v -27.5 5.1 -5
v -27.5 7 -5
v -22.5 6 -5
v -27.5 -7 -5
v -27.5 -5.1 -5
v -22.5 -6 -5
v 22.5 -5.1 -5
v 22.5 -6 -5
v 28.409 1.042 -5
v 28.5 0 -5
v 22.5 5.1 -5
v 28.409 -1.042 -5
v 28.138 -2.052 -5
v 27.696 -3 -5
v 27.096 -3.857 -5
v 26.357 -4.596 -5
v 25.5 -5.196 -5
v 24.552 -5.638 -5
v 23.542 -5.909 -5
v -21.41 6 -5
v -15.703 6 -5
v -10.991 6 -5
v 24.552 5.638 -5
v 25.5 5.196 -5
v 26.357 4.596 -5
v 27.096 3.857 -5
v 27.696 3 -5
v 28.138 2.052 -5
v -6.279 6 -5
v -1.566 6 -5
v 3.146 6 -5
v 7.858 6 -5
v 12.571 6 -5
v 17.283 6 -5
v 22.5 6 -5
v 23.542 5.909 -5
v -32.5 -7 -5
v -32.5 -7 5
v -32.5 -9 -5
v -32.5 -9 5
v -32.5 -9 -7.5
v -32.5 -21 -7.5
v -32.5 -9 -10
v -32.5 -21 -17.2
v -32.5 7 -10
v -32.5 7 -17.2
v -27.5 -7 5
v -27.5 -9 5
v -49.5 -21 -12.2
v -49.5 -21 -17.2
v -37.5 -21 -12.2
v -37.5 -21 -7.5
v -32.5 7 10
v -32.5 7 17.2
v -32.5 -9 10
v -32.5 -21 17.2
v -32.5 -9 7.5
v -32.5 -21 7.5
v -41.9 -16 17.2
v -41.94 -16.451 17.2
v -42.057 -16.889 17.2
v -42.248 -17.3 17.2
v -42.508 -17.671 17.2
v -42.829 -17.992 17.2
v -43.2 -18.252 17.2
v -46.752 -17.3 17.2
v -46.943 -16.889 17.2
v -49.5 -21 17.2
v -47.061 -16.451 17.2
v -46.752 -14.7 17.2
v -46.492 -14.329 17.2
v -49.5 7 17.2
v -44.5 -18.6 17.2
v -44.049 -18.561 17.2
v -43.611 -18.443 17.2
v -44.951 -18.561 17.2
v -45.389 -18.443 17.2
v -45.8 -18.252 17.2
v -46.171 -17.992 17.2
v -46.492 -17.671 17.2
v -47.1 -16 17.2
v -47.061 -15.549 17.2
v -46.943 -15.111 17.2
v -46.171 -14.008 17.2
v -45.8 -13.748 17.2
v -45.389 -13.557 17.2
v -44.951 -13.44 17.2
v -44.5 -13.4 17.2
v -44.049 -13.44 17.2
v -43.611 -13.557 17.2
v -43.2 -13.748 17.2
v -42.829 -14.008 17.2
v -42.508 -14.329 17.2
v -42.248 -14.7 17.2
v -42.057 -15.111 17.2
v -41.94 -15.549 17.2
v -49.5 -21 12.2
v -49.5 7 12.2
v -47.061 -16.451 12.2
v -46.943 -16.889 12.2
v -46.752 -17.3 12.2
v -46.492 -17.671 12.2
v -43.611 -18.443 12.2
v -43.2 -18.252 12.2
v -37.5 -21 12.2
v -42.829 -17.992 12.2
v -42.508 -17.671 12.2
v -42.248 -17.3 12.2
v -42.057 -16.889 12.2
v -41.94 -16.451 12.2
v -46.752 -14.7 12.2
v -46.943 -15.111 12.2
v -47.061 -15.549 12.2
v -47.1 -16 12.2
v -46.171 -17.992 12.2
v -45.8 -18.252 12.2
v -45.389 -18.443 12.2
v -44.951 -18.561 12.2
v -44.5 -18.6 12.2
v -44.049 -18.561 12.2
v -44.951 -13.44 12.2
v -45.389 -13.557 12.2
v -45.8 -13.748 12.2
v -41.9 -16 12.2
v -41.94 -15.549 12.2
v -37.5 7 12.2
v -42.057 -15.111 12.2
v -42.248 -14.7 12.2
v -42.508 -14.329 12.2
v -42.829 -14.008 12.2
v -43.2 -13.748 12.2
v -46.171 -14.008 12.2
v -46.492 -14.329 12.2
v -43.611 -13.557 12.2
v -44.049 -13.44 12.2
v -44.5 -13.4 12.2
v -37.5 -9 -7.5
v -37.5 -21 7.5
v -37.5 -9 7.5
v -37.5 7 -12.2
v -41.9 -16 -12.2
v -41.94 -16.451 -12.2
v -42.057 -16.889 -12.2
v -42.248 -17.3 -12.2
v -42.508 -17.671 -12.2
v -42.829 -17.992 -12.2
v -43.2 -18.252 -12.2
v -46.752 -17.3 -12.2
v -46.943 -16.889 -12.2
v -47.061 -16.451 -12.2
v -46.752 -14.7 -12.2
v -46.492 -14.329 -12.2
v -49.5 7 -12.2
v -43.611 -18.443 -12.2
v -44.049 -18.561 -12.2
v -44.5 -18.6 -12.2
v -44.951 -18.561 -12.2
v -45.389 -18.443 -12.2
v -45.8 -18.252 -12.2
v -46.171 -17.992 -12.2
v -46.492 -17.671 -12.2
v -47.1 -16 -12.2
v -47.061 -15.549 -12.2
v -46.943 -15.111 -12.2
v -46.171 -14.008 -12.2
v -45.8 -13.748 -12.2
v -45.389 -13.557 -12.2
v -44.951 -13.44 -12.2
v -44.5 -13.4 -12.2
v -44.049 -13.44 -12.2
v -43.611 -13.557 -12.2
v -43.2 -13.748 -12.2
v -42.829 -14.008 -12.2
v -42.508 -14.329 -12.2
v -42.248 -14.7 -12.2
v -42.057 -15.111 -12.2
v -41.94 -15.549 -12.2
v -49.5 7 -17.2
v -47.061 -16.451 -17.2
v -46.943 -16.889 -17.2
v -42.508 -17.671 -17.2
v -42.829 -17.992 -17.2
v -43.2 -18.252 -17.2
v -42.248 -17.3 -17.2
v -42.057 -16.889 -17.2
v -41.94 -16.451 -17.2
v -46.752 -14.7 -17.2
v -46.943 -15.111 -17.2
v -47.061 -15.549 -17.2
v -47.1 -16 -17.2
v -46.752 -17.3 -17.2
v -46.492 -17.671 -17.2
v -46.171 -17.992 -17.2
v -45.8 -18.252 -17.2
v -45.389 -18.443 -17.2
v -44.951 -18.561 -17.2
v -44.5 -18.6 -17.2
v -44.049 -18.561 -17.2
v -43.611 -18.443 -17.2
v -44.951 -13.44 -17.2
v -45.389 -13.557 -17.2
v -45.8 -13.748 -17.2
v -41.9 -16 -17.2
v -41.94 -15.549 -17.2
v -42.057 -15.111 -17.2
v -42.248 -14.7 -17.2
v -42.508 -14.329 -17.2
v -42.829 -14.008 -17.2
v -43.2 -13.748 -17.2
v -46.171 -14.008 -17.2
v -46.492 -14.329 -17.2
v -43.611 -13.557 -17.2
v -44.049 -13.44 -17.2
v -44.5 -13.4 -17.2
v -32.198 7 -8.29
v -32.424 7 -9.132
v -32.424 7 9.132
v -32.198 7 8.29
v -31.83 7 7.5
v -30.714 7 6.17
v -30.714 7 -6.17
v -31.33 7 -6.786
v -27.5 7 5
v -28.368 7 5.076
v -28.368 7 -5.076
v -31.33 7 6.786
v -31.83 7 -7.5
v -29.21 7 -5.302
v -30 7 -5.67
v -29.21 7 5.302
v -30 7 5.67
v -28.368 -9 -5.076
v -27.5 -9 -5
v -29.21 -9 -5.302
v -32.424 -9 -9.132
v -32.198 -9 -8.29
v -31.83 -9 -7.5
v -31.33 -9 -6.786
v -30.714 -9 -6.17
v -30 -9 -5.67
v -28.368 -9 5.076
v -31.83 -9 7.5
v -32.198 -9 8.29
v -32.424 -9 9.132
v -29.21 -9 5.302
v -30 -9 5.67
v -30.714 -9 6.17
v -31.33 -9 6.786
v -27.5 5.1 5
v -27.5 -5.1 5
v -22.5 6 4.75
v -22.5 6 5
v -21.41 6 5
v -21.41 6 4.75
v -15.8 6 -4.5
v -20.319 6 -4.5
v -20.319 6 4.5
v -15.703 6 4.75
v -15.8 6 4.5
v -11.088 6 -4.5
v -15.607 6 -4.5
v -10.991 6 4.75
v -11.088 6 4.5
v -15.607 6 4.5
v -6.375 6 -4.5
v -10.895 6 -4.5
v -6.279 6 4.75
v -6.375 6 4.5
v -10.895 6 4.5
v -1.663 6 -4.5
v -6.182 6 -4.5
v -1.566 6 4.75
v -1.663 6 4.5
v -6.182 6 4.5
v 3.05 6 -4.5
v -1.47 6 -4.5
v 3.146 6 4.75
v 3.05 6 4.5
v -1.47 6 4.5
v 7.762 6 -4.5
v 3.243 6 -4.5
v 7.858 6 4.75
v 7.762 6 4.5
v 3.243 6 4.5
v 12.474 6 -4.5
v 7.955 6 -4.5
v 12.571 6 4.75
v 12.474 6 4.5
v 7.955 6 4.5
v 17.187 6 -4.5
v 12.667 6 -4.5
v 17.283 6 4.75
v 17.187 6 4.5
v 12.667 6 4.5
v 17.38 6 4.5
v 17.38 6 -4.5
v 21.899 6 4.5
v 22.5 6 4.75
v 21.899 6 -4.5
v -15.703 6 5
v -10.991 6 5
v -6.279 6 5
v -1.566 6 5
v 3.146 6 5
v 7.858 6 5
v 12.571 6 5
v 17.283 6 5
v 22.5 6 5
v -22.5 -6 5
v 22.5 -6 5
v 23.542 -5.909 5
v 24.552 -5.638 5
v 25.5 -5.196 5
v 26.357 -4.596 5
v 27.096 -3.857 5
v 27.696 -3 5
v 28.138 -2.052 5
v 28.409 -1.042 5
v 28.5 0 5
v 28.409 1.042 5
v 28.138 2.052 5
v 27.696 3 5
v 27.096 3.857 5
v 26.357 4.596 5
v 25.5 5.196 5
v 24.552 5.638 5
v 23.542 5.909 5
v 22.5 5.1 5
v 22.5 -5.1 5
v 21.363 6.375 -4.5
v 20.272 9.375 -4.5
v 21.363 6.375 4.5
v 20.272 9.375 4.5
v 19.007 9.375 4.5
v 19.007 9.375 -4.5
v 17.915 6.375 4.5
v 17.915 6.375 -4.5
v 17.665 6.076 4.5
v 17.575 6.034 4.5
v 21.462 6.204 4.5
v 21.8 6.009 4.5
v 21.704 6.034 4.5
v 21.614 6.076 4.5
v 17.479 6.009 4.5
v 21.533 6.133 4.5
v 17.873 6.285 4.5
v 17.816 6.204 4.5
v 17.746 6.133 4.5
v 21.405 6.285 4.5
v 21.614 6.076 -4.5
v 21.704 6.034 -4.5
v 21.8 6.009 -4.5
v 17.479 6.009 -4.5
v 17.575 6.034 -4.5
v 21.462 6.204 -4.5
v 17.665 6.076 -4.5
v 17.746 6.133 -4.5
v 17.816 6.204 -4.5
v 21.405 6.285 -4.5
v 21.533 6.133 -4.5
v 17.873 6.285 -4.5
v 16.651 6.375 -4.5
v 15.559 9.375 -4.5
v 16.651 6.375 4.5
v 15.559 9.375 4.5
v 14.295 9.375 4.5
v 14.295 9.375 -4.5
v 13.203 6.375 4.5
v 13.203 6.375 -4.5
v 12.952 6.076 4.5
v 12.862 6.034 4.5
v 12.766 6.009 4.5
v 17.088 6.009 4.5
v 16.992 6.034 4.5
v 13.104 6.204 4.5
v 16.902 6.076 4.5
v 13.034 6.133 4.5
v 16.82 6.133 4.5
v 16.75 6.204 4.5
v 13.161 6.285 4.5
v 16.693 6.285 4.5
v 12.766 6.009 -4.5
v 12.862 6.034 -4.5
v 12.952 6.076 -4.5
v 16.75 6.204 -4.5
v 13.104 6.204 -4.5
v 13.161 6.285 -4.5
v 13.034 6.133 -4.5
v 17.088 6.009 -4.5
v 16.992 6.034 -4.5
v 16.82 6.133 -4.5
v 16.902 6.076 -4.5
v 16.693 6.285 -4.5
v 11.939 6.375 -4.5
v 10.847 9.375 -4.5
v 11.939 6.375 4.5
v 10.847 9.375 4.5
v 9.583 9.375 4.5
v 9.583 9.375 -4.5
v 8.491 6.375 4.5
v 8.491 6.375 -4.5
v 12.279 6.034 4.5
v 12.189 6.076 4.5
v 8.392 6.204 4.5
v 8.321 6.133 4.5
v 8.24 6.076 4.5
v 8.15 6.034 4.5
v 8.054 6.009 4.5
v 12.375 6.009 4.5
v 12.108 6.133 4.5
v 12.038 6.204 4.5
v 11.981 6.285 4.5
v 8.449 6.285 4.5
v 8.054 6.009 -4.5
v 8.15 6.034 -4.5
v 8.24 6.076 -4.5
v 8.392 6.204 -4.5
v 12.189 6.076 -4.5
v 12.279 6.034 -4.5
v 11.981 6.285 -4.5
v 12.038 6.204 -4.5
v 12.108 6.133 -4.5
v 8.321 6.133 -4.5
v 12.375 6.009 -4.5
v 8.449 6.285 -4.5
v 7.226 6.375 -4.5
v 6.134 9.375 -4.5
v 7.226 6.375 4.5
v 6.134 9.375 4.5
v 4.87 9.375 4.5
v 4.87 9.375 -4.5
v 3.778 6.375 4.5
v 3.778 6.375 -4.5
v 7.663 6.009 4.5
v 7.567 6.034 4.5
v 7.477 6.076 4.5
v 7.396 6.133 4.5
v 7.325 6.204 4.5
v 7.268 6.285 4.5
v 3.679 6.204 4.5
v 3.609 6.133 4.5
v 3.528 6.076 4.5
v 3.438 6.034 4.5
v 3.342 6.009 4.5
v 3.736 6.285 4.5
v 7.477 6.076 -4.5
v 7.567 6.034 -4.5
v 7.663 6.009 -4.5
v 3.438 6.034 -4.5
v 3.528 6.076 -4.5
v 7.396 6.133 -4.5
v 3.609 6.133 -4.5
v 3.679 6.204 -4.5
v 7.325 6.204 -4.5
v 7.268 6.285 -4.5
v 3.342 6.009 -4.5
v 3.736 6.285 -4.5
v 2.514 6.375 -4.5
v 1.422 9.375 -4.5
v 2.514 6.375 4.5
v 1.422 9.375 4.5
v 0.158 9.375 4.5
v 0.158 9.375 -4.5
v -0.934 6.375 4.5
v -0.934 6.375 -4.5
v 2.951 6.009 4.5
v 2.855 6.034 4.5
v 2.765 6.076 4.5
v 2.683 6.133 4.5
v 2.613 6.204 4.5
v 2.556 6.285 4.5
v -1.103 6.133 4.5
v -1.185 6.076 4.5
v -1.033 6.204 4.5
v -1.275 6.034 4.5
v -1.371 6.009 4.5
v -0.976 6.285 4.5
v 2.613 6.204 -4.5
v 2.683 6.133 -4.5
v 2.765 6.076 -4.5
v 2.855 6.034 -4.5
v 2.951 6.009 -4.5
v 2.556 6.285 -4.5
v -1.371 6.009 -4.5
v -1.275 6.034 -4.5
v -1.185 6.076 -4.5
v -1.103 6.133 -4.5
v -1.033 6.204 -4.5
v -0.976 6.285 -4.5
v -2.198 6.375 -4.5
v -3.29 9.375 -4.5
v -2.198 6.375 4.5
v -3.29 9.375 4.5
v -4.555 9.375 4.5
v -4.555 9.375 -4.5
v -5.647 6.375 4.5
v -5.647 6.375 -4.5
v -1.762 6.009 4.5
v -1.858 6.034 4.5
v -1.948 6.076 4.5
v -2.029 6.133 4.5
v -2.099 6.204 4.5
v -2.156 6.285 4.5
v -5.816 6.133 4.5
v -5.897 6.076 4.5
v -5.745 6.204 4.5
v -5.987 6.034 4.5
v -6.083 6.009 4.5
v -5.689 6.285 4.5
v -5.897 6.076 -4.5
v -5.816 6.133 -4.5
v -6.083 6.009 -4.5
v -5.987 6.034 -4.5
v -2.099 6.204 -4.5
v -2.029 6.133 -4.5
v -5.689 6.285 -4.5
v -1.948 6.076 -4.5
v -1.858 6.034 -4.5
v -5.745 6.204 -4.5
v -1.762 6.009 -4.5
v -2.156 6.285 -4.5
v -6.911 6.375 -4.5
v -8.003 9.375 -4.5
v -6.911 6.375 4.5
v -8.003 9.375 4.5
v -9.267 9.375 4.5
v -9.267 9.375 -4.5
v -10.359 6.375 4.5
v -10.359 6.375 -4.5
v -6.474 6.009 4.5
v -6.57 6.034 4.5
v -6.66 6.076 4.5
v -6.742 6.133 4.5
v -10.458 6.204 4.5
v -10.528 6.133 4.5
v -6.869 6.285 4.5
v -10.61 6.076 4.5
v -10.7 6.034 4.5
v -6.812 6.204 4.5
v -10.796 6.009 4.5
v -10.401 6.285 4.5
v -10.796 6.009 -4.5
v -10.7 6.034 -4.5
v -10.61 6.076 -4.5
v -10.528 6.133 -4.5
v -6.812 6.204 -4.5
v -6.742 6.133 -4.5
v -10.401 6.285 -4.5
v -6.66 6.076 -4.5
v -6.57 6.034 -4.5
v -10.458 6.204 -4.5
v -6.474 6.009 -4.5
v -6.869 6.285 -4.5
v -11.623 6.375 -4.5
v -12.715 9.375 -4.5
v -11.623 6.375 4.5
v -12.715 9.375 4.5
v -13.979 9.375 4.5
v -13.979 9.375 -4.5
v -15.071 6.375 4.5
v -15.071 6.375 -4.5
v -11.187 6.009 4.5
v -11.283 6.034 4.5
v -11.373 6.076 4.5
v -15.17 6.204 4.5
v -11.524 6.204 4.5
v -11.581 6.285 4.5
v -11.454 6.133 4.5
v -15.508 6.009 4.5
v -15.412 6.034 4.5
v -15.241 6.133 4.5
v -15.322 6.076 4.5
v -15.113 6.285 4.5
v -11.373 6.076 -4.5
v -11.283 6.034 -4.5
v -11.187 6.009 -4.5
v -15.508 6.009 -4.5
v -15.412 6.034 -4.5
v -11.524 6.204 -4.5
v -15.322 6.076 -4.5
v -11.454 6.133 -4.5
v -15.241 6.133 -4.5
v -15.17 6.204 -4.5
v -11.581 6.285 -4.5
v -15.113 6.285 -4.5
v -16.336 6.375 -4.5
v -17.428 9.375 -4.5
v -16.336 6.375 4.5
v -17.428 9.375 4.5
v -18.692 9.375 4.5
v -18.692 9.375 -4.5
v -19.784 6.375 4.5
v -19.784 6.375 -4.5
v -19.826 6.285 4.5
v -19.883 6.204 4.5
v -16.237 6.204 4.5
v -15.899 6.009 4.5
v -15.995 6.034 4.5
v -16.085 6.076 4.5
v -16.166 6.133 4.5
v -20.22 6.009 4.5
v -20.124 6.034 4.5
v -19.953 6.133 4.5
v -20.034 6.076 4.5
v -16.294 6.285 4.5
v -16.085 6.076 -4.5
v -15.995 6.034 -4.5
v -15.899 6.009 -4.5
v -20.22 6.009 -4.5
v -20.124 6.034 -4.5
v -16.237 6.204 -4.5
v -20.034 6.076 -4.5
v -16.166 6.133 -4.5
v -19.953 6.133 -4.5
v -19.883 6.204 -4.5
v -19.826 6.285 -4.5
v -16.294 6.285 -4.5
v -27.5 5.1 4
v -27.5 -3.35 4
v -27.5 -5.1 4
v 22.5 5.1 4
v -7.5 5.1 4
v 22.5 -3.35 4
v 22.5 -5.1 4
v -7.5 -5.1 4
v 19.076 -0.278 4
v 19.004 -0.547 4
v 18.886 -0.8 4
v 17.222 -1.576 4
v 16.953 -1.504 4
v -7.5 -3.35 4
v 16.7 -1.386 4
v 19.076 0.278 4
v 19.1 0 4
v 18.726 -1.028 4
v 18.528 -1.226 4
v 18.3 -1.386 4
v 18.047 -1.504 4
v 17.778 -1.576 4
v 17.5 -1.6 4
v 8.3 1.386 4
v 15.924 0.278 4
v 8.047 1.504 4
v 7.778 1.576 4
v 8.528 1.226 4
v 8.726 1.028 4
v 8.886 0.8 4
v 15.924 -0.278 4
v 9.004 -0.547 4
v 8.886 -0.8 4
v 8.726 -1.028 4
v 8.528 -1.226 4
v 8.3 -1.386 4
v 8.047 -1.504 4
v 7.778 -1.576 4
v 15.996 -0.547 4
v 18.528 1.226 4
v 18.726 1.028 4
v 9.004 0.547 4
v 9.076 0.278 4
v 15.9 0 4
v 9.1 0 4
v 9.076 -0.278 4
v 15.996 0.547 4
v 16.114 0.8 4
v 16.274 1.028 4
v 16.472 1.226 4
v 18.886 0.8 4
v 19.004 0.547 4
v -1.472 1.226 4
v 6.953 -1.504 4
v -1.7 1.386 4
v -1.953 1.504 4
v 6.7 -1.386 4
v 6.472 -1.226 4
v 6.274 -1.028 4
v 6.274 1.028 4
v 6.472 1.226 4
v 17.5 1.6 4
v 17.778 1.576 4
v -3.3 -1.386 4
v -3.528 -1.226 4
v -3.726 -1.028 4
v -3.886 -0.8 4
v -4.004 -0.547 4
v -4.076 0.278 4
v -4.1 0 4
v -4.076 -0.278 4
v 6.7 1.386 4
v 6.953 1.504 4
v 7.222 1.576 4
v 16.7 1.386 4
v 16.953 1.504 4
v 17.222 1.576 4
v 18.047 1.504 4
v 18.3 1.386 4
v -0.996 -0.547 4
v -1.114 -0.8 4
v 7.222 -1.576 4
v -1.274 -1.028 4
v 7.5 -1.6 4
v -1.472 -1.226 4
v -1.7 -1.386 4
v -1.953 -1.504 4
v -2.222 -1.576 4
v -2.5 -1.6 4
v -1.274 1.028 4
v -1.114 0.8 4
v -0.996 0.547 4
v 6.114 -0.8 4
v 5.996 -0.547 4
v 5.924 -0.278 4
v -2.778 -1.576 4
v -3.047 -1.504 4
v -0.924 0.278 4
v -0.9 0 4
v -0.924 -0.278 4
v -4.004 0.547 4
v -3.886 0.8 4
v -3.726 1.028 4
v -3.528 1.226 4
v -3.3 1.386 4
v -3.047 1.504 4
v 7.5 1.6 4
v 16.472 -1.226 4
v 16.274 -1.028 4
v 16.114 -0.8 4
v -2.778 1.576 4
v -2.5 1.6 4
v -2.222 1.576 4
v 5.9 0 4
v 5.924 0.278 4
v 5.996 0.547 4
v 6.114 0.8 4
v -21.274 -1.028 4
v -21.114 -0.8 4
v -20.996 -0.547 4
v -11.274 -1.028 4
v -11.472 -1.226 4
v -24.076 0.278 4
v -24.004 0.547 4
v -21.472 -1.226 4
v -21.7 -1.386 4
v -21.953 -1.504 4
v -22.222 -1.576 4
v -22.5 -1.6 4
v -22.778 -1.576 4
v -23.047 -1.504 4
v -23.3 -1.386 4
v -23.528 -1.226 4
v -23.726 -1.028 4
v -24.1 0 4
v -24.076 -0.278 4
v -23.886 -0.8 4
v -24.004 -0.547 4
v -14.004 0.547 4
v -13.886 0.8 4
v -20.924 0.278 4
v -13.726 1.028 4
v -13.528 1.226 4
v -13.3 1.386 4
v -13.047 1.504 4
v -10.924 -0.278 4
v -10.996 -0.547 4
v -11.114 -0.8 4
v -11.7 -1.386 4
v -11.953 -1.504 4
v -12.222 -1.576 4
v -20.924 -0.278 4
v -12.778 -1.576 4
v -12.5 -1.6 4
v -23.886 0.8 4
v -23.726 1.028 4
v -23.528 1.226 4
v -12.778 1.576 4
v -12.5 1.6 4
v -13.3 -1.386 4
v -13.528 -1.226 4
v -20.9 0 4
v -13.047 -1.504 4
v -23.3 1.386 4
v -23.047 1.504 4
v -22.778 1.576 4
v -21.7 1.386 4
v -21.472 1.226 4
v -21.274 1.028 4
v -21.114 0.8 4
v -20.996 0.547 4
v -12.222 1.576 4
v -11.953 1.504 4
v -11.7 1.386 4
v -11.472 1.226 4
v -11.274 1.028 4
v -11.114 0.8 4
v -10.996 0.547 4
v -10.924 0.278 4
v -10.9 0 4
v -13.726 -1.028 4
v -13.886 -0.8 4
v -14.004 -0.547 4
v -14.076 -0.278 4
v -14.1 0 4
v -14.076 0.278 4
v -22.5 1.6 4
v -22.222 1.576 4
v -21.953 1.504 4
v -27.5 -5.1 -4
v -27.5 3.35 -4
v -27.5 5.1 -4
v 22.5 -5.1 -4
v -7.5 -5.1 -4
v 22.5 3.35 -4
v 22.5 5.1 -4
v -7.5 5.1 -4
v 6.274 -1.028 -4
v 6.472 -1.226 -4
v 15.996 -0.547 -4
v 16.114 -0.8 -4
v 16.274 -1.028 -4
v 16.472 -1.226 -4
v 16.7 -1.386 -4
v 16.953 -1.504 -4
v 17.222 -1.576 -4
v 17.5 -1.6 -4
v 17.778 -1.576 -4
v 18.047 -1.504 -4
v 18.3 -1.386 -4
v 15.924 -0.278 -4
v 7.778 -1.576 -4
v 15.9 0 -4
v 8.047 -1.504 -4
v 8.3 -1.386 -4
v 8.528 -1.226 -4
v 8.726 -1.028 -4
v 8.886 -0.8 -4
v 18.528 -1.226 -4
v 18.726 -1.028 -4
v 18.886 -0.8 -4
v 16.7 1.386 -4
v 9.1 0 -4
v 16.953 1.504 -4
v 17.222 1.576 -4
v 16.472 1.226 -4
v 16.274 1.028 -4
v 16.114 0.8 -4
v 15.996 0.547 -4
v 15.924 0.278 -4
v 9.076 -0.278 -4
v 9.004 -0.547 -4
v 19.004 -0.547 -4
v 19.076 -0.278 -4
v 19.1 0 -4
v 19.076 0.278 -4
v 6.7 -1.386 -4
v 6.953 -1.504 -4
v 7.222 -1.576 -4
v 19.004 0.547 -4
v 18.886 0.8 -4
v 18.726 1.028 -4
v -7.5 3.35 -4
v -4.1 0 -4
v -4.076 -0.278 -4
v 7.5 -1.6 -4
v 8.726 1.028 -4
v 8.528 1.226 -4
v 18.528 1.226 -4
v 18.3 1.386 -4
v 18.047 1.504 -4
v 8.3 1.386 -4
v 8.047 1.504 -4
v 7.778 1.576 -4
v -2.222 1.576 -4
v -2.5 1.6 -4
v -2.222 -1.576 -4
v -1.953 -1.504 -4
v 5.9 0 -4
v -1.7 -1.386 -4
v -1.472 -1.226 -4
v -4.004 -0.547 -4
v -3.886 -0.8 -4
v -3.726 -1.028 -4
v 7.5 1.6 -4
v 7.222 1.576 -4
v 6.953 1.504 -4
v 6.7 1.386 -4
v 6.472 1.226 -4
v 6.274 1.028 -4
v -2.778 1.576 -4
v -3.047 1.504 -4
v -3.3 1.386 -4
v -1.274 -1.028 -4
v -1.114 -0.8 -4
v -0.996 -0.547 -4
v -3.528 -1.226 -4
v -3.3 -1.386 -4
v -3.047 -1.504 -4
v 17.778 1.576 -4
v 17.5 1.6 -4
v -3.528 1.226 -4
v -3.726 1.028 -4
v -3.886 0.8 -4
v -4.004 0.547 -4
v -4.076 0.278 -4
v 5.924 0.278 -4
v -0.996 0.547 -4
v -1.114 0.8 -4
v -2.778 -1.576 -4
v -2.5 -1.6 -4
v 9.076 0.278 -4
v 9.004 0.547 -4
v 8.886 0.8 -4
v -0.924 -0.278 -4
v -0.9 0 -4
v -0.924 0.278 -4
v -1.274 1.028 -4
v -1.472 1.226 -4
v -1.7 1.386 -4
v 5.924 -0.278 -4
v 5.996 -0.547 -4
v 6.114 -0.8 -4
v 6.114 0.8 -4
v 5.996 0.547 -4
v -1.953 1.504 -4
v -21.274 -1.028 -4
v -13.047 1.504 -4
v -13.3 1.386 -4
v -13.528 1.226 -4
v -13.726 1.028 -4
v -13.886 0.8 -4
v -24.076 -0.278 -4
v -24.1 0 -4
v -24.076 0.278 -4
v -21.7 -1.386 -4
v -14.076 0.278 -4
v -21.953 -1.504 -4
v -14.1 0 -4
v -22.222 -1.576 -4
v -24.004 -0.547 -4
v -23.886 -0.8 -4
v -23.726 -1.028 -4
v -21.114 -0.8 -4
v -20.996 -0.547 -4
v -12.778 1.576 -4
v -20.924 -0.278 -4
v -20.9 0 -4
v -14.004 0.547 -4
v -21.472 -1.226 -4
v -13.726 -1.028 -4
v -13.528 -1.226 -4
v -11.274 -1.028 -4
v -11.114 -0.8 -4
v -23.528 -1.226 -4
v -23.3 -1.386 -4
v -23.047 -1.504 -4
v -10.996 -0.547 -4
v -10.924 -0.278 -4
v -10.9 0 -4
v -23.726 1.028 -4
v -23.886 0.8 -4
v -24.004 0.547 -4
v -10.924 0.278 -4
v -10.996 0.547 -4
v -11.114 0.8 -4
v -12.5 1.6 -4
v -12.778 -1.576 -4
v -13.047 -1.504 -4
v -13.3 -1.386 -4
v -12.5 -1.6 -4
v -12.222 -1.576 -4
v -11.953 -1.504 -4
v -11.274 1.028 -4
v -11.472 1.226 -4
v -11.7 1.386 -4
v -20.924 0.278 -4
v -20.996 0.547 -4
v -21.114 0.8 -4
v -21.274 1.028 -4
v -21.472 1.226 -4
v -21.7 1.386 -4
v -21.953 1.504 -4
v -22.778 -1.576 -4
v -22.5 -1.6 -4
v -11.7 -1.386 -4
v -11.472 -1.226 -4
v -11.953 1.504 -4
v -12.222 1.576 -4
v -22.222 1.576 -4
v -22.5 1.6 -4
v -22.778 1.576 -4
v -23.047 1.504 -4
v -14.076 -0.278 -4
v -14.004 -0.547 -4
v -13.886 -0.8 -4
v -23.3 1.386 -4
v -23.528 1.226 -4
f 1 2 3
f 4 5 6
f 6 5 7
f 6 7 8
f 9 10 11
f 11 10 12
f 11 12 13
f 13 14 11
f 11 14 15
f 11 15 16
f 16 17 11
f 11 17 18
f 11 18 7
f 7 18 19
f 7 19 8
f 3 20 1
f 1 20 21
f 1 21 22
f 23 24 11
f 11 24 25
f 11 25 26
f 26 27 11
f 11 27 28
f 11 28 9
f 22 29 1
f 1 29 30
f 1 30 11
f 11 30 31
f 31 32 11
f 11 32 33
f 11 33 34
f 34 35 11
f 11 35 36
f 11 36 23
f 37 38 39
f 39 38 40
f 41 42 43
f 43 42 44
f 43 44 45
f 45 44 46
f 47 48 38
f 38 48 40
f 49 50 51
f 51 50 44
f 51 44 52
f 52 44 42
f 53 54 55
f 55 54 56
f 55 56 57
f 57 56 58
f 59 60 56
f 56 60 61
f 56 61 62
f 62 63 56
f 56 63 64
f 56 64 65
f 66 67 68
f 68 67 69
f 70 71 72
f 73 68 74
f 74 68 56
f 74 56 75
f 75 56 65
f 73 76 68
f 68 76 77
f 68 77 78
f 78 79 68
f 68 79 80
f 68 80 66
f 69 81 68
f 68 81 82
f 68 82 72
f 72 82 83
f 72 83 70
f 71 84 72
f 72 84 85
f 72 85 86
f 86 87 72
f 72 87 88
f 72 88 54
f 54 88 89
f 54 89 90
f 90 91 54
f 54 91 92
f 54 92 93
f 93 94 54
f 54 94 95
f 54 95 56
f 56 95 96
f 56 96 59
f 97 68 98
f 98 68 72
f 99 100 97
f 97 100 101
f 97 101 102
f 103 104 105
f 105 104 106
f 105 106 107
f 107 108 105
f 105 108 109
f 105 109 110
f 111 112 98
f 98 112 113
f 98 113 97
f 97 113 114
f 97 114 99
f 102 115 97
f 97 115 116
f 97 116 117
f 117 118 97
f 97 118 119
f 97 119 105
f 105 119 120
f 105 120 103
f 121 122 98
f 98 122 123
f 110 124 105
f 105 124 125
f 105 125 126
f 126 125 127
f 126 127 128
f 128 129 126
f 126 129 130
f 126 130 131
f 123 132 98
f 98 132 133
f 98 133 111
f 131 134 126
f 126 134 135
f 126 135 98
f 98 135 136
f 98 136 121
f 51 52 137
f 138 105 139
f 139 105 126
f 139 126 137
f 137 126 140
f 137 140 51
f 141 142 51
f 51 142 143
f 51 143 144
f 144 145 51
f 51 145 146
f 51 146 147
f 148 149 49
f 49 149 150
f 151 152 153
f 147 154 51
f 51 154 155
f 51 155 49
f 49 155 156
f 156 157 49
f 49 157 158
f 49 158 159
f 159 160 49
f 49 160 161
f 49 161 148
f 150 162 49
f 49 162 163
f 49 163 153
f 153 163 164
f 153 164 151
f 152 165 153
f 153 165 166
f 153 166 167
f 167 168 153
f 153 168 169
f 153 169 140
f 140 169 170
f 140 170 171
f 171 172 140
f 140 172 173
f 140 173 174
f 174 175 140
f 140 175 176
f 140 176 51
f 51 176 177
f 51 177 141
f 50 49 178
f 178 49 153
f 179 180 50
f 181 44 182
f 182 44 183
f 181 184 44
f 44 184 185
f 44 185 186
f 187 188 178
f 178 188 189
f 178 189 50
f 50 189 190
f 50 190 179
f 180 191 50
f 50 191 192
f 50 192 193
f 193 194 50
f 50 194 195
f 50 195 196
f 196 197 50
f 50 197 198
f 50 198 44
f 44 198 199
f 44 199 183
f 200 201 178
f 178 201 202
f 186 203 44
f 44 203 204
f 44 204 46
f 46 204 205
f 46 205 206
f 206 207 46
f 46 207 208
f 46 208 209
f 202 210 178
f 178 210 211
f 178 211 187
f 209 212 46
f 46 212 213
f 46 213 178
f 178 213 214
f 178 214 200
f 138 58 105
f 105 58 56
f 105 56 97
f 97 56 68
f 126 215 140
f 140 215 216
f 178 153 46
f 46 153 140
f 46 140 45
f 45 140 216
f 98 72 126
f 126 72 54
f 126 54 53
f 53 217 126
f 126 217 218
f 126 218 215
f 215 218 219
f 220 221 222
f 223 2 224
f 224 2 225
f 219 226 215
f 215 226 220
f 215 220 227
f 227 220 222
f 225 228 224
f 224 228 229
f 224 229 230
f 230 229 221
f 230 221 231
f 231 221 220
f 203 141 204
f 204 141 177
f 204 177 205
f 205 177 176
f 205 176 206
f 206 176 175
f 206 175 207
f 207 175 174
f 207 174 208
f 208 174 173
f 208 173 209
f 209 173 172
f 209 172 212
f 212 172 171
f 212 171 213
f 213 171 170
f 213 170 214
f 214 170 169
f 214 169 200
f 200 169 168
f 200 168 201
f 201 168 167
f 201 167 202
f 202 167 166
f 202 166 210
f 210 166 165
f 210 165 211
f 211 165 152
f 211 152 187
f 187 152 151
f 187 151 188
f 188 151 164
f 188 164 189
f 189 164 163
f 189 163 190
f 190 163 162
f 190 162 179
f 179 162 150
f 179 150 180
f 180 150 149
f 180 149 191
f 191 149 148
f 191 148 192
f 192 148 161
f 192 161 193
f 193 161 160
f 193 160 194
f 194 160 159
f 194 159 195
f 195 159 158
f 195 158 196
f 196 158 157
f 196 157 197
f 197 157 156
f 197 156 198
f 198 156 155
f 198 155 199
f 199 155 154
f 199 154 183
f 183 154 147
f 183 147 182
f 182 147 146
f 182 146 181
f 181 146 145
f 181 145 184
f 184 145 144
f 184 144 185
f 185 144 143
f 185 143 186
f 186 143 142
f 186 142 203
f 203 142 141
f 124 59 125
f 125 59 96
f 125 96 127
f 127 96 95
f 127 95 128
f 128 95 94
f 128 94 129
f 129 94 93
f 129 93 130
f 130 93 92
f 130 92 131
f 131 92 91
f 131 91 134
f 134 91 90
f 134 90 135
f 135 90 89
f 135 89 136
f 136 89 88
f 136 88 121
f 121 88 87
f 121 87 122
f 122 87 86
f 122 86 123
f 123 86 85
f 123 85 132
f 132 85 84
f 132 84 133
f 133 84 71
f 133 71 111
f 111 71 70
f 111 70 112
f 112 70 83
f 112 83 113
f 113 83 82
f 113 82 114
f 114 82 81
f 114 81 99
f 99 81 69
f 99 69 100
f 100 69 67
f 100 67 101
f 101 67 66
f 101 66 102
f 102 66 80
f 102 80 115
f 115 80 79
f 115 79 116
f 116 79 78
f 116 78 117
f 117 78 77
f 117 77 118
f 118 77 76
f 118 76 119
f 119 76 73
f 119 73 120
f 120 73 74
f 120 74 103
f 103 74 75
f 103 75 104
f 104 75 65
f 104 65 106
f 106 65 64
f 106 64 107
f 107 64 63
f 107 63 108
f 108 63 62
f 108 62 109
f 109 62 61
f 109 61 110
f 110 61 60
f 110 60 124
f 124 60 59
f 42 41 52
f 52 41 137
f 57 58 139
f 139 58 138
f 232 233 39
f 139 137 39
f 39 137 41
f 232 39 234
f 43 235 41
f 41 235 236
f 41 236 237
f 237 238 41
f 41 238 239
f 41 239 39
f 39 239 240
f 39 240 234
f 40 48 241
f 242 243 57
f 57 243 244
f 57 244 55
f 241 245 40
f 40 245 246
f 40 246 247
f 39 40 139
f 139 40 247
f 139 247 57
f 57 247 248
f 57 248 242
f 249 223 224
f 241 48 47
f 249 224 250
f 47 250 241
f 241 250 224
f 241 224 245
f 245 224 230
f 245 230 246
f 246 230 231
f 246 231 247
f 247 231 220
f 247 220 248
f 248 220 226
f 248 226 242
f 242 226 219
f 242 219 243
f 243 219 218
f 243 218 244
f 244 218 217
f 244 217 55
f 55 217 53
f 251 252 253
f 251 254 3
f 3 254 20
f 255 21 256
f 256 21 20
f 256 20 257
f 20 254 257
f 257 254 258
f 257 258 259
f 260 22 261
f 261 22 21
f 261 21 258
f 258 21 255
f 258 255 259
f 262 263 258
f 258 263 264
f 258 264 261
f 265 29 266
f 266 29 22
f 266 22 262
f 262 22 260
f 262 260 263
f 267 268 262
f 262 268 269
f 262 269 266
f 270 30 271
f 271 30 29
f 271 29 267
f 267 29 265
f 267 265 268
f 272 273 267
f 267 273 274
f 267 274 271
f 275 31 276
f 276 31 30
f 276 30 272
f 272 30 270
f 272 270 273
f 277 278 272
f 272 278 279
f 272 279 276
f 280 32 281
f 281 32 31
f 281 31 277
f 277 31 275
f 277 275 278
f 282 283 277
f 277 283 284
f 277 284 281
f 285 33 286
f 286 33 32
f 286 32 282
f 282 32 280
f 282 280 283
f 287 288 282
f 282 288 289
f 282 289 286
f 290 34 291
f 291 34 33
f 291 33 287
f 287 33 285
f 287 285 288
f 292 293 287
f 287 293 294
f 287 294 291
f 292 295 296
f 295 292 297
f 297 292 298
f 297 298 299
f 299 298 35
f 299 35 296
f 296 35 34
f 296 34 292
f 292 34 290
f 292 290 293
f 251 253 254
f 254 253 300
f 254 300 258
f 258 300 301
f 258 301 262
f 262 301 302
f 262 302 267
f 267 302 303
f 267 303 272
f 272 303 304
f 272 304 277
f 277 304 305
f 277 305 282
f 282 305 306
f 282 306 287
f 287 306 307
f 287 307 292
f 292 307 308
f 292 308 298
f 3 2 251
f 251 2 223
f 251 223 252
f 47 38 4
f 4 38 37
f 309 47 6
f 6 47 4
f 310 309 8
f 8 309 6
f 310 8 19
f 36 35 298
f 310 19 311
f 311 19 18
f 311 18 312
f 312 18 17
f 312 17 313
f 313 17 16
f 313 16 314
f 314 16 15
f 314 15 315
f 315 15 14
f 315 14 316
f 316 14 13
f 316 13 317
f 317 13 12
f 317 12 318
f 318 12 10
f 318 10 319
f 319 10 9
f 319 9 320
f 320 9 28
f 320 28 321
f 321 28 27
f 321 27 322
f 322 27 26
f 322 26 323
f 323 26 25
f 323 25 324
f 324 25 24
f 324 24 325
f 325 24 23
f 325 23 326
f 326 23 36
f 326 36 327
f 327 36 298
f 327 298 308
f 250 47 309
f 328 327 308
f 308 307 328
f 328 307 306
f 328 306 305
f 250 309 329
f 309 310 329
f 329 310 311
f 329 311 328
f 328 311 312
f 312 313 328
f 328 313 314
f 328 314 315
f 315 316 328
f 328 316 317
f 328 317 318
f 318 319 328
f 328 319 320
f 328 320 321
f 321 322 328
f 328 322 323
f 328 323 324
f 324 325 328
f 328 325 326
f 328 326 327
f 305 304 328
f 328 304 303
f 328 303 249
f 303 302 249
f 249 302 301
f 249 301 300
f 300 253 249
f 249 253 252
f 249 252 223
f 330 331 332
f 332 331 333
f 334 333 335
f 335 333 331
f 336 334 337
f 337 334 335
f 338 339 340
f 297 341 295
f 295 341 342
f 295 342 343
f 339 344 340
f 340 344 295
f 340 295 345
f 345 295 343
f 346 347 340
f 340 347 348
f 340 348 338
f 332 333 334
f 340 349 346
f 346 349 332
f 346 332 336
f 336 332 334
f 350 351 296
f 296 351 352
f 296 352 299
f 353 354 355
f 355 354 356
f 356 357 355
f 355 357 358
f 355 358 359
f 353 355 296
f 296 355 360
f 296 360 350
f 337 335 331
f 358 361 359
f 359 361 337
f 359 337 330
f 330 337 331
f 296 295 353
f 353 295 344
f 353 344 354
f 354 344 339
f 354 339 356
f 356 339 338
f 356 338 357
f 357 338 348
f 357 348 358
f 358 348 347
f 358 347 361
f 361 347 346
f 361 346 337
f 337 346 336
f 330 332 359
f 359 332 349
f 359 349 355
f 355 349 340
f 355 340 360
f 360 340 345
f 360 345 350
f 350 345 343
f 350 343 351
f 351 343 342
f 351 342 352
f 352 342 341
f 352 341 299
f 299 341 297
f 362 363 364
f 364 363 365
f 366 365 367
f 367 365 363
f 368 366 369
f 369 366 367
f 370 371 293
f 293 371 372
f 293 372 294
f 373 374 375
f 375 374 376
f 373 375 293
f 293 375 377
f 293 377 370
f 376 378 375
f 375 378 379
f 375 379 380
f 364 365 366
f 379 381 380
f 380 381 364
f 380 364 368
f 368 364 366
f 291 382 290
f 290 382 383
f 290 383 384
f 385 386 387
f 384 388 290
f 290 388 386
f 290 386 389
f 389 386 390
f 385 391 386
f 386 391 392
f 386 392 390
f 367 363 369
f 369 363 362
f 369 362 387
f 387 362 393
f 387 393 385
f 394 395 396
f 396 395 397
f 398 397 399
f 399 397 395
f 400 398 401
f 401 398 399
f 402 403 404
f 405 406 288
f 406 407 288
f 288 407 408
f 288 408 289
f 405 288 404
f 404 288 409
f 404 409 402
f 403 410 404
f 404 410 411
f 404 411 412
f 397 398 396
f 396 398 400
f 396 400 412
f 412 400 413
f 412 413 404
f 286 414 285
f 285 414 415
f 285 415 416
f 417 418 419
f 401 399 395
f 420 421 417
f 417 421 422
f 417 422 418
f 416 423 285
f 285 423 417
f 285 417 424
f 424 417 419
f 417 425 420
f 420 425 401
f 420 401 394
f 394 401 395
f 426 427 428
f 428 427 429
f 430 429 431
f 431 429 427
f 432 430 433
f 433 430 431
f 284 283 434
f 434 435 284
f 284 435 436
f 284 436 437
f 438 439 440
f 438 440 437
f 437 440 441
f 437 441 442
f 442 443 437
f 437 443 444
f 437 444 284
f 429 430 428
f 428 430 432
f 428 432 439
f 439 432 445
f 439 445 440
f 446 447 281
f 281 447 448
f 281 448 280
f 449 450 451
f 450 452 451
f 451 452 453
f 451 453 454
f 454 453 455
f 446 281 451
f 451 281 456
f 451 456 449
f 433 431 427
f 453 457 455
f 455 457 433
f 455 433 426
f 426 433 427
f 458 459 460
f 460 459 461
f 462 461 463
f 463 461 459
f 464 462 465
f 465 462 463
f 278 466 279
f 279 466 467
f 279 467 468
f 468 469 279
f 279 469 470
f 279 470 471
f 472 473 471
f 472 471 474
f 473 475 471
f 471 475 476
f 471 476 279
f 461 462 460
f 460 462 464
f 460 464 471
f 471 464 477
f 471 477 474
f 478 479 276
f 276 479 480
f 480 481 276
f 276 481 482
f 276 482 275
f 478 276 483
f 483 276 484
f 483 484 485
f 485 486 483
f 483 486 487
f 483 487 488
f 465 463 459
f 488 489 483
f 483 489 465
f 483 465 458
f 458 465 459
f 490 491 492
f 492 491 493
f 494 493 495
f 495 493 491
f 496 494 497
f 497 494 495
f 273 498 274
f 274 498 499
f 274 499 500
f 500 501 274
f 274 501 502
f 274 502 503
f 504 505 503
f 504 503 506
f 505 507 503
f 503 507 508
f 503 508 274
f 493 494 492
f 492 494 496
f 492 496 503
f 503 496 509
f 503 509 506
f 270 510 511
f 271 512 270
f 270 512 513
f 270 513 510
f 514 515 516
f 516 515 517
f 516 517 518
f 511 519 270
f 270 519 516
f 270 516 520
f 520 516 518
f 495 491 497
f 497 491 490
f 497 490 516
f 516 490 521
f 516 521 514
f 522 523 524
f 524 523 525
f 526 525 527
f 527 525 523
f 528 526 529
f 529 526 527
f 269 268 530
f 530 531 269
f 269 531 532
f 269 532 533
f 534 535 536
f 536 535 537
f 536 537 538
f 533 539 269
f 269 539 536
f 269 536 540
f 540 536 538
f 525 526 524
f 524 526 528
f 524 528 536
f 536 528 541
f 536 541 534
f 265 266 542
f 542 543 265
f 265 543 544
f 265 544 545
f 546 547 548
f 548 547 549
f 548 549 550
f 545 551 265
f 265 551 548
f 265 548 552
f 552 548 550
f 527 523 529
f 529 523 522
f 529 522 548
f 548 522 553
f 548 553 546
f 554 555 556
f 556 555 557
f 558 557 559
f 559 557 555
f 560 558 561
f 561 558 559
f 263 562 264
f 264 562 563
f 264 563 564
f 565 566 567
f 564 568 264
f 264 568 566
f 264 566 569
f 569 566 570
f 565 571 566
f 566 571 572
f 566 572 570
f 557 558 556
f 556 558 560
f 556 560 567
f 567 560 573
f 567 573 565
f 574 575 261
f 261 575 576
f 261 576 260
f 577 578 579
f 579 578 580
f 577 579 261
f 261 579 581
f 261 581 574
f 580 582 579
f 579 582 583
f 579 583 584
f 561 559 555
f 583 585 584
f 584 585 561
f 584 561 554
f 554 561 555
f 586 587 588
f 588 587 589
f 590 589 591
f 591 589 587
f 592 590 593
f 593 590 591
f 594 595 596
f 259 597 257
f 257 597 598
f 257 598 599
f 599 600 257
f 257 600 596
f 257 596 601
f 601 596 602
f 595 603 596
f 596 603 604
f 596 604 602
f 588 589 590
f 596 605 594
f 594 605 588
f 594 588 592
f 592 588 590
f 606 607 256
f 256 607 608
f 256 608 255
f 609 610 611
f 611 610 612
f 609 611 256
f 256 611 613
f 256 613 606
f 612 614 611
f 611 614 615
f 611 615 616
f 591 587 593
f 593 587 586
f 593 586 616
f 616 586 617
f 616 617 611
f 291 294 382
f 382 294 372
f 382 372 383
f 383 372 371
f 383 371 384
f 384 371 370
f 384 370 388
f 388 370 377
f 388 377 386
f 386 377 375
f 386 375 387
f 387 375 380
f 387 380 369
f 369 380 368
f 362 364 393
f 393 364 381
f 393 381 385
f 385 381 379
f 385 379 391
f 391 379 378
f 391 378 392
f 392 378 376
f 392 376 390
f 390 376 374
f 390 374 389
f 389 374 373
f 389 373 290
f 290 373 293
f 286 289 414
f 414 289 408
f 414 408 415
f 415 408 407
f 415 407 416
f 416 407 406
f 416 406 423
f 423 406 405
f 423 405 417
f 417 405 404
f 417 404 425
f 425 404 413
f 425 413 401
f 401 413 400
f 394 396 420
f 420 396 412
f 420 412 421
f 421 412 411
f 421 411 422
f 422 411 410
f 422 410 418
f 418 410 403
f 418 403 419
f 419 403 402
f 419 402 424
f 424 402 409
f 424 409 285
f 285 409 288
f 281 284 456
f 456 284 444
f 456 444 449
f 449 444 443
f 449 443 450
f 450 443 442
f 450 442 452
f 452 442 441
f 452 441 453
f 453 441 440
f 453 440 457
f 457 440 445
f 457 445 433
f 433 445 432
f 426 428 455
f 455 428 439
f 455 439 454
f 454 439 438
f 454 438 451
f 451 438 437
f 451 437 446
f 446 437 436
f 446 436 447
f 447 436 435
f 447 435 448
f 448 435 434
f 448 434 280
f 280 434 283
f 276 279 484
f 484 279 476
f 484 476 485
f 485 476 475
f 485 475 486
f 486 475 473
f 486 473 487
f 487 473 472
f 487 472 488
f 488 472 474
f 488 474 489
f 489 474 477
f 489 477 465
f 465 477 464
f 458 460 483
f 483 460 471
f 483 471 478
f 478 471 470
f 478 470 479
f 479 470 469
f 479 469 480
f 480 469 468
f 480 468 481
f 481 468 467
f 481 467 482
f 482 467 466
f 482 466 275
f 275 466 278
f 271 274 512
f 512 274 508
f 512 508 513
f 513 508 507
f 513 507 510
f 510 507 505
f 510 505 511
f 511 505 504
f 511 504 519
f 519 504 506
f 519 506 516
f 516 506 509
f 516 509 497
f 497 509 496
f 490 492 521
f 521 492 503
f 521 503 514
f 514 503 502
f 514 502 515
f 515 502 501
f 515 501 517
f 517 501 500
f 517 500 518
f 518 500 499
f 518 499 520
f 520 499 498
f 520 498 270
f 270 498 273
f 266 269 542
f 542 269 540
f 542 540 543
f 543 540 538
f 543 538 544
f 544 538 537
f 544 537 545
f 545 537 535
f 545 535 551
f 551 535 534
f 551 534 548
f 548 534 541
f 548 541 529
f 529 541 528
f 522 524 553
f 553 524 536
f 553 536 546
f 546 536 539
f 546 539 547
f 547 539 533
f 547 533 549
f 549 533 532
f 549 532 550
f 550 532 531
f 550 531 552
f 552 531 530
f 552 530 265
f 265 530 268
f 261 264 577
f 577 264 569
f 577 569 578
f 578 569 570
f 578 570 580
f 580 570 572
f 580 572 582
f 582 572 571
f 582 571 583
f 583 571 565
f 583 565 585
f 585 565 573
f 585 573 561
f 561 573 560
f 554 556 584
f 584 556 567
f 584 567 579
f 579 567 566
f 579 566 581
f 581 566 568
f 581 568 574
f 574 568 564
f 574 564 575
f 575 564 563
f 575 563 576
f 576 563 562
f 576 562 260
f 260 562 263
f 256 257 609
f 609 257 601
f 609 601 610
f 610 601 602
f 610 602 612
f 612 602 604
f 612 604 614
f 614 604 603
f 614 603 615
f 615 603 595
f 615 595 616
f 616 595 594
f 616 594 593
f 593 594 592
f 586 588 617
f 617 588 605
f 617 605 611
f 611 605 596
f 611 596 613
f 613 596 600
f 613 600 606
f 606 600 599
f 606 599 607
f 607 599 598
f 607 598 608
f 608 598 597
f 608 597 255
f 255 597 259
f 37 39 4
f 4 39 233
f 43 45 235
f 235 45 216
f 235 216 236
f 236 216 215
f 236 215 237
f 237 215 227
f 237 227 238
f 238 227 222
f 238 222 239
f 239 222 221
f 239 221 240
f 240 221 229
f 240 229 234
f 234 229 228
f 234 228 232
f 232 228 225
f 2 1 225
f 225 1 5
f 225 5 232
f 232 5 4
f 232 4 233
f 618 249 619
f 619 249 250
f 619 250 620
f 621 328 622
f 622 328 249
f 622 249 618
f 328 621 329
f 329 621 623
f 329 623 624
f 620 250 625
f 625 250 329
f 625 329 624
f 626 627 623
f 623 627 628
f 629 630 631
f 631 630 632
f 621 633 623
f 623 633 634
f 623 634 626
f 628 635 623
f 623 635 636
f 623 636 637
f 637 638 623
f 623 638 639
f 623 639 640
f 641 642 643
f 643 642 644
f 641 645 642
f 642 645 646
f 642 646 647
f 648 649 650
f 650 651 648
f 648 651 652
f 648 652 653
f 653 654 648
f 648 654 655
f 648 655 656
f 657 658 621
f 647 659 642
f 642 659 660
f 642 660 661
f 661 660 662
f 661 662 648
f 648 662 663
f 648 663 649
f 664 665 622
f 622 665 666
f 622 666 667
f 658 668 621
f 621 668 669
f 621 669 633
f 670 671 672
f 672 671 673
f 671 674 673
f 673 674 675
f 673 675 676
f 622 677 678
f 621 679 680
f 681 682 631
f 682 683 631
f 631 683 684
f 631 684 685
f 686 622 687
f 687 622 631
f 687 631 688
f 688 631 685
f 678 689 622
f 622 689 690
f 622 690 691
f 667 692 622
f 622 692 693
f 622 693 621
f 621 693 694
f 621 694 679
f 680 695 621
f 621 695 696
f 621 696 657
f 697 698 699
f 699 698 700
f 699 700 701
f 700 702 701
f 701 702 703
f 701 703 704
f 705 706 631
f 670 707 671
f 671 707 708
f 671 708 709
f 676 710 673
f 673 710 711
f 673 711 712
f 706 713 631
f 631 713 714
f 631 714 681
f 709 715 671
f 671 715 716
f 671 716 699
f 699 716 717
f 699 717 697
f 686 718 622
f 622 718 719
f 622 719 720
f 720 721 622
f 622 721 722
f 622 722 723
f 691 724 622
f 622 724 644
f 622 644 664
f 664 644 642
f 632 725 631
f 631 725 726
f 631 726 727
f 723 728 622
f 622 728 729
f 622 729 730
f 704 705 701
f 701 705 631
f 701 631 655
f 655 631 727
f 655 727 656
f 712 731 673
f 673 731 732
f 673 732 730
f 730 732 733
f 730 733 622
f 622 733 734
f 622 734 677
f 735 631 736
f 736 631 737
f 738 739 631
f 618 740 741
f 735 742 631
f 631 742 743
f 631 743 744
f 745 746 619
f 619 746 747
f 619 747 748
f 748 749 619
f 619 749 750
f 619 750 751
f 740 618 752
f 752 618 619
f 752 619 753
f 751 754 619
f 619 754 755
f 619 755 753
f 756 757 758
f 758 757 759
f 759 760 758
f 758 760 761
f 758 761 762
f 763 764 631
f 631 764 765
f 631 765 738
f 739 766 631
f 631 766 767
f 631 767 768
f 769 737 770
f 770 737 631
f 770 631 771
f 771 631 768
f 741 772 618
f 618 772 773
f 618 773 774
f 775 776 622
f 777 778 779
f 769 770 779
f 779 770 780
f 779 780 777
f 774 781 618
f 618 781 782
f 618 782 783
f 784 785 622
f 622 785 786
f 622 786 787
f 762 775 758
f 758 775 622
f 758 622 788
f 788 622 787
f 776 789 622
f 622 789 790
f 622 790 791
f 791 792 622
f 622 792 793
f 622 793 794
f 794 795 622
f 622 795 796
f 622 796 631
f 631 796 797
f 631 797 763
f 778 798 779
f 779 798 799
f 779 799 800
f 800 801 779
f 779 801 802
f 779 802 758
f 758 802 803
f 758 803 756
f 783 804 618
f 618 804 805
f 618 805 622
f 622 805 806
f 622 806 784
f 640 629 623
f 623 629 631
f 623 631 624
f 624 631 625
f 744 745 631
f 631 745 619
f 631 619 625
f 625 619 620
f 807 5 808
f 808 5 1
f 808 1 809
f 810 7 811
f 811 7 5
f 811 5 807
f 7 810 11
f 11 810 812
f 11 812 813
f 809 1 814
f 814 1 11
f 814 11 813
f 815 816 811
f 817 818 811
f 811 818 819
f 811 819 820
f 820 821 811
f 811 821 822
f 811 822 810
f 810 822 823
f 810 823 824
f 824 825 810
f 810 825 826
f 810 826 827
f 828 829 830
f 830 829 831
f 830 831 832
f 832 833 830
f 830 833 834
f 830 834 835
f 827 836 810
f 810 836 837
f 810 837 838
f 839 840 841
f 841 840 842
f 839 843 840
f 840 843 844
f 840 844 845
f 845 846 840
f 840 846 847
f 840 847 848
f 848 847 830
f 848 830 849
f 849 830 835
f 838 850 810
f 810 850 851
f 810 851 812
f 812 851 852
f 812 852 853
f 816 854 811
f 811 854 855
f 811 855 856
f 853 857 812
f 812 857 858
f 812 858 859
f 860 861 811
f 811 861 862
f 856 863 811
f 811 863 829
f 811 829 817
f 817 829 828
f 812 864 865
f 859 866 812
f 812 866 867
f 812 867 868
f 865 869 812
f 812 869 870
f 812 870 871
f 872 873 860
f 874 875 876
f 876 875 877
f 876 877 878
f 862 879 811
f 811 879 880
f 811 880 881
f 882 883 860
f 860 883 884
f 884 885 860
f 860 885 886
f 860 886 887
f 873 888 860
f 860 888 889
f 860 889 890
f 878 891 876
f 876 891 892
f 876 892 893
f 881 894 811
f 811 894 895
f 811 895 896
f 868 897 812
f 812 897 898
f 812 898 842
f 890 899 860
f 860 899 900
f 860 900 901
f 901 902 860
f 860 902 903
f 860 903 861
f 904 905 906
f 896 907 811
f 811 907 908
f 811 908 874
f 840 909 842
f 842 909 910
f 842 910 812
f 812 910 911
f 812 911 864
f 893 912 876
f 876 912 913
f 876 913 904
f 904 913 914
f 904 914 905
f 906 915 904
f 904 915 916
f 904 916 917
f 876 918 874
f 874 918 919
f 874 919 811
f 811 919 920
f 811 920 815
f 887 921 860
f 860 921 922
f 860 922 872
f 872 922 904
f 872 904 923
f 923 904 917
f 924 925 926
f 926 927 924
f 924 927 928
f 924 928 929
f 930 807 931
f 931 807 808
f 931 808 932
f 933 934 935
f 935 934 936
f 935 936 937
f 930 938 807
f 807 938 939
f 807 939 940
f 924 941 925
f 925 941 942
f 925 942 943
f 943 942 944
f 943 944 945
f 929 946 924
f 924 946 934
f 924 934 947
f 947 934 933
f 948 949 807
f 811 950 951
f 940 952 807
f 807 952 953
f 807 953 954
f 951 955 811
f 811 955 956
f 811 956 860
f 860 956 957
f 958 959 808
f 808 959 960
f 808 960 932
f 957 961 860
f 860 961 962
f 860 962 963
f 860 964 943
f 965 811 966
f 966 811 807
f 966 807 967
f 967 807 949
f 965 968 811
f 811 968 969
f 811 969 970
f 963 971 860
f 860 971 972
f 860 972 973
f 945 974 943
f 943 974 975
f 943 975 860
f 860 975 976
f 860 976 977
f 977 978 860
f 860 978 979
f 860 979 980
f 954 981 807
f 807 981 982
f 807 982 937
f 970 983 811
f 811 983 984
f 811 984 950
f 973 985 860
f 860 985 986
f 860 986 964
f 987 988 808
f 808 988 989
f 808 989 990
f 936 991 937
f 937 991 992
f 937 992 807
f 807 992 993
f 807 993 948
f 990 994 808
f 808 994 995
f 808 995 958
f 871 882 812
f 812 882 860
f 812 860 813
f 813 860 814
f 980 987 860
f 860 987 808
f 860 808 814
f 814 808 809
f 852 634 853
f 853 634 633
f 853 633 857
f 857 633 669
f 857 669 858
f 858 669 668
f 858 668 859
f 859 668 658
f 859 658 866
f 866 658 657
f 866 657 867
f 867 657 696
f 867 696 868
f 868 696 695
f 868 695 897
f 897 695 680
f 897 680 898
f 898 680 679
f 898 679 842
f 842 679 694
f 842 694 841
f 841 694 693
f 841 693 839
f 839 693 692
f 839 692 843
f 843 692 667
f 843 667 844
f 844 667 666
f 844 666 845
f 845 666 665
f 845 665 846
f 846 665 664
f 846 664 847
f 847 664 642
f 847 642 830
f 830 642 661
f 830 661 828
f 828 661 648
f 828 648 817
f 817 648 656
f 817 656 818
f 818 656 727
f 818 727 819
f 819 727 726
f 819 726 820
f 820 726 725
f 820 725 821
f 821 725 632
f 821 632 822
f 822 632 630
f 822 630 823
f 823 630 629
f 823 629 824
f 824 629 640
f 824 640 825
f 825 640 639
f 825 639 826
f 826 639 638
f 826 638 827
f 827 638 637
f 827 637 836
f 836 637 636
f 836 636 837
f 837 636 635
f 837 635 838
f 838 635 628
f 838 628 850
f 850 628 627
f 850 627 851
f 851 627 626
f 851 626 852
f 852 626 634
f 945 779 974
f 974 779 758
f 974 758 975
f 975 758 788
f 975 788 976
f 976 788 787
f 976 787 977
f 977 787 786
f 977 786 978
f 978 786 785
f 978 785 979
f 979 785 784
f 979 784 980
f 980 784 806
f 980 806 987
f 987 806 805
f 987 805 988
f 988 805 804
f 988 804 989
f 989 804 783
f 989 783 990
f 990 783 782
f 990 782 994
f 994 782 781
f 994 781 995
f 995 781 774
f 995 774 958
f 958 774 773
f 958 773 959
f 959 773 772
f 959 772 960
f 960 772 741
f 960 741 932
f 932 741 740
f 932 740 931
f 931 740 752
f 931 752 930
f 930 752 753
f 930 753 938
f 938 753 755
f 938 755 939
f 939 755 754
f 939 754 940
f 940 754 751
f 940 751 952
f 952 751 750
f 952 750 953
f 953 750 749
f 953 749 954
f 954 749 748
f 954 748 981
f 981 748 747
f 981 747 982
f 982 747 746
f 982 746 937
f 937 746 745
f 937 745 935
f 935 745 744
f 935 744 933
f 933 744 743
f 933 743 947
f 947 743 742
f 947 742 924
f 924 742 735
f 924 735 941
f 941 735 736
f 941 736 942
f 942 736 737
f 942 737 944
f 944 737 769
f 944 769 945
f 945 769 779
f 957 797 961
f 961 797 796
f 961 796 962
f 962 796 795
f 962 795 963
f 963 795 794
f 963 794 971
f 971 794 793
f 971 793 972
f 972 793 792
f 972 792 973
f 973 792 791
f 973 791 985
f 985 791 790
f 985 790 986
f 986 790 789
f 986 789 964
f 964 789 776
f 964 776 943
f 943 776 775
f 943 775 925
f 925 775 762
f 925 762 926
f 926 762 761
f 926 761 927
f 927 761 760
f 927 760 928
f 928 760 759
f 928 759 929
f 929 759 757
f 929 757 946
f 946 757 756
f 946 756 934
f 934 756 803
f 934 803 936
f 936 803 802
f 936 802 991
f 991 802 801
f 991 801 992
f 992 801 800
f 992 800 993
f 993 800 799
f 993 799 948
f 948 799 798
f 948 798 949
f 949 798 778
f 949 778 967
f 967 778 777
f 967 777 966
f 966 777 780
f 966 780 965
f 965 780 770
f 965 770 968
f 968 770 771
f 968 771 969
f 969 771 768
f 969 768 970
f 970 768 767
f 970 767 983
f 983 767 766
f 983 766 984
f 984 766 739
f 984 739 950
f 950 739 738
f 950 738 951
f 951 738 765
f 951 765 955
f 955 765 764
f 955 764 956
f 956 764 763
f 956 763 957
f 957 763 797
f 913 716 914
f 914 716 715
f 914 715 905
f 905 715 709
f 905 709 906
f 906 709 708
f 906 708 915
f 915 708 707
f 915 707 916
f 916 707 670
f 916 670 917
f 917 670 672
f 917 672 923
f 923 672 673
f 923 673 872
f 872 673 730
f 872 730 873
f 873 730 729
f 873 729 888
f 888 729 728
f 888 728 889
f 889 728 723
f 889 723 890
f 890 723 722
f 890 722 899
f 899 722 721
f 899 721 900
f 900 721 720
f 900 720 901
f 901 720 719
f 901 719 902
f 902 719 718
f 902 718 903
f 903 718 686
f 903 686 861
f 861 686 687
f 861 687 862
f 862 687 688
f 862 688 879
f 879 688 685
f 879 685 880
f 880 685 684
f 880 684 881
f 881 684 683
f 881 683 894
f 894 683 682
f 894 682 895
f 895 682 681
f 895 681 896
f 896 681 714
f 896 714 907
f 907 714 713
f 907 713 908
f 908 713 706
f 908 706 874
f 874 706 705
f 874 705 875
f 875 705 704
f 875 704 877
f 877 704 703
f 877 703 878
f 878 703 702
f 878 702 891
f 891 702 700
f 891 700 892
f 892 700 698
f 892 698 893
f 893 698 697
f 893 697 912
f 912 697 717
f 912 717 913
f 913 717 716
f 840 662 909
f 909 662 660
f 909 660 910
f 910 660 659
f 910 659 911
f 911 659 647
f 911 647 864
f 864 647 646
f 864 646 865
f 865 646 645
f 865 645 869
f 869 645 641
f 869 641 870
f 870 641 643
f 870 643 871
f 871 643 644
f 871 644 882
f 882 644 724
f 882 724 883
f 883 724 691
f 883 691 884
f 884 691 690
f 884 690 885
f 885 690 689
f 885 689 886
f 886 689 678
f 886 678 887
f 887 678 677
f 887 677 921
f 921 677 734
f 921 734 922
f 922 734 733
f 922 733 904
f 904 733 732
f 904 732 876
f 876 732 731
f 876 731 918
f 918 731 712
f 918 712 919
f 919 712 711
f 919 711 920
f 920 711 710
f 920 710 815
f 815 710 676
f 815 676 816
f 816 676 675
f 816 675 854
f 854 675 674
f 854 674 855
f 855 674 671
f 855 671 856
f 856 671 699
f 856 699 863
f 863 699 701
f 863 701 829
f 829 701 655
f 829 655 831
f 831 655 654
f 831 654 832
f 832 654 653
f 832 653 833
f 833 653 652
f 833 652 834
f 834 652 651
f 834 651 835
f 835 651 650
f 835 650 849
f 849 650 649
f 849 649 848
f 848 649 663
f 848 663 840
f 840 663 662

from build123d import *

# Parameters (mm, degrees)
MAIN_EXTRUSION_DEPTH          = 5
TOOTH_DEPTH                   = 4.5
TOOTH_FILLET_R                = 0.57
TOOTHREPEAT_COUNT             = 9
TOOTHREPEAT_PITCH             = 4.71238898
TOOTH_FILLET_OF_TOOTHREPEAT_R = 0.57
FIXINGSUPPORT_DEPTH           = 28
ESQUISSE11_R                  = 2.6
FIXINGHOLES_DEPTH             = 64.832671885
ESQUISSE12_W                  = 15
ESQUISSE12_H                  = 12
RACKHOLE_DEPTH                = 67.767057746
FILLET_2_DEPTH                = 16
ESQUISSE15_W                  = 50
ESQUISSE15_H                  = 10.2
REINFORCEMENT_DEPTH           = 1
ESQUISSE16_R                  = 1.6
ENL_V_MAT_EXTRU_2_DEPTH       = 58.798702408


with BuildPart() as part:
    # Esquisse1 → Main Extrusion (new, symmetric)
    with BuildSketch(Plane.XY):
        with BuildLine():
            Line((-22.5, 6), (-27.5, 7))
            Line((-27.5, 7), (-32.5, 7))
            Line((-32.5, 7), (-32.5, -7))
            Line((-32.5, -7), (-27.5, -7))
            Line((-27.5, -7), (-22.5, -6))
            Line((-22.5, -6), (22.5, -6))
            ThreePointArc((22.5, -6), (28.5, 0), (22.5, 6))
            Line((22.5, 6), (-22.5, 6))
        make_face()
    extrude(amount=MAIN_EXTRUSION_DEPTH, both=True)

    # Esquisse5 → Tooth (add, symmetric)
    with BuildSketch(Plane.XY):
        Polygon((17.778917131, 6), (19.007316672, 9.375), (20.271600459, 9.375), (21.5, 6), align=None)
    tooth = extrude(amount=TOOTH_DEPTH, both=True)

    # Tooth Fillet
    tooth_fillet_edges = [part.edges().sort_by_distance(p)[0] for p in [
        (17.778917131, 6, 0),
        (21.5, 6, 0),
    ]]
    fillet(tooth_fillet_edges, radius=TOOTH_FILLET_R)

    # ToothRepeat: Tooth ×9
    with Locations(*[(-i * TOOTHREPEAT_PITCH, 0, 0) for i in range(1, TOOTHREPEAT_COUNT)]):
        add(tooth)

    # Tooth Fillet of ToothRepeat
    tooth_fillet_of_toothrepeat_edges = [part.edges().sort_by_distance(p)[0] for p in [
        (13.066528151, 6, 0),
        (16.78761102, 6, 0),
        (8.354139171, 6, 0),
        (12.07522204, 6, 0),
        (3.641750191, 6, 0),
        (7.36283306, 6, 0),
        (-1.070638789, 6, 0),
        (2.65044408, 6, 0),
        (-5.783027769, 6, 0),
        (-2.0619449, 6, 0),
        (-10.495416749, 6, 0),
        (-6.77433388, 6, 0),
        (-15.207805729, 6, 0),
        (-11.48672286, 6, 0),
        (-19.920194709, 6, 0),
        (-16.19911184, 6, 0),
    ]]
    fillet(tooth_fillet_of_toothrepeat_edges, radius=TOOTH_FILLET_OF_TOOTHREPEAT_R)



with BuildPart() as body_2:
    # Esquisse10 → FixingSupport (new body)
    with BuildSketch(Plane(origin=(0, 7, 0), x_dir=(1, 0, 0), z_dir=(0, 1, 0))):
        Polygon((-32.5, -17.2), (-49.5, -17.2), (-49.5, -12.2), (-37.5, -12.2), (-37.5, 12.2), (-49.5, 12.2), (-49.5, 17.2), (-32.5, 17.2), align=None)
    extrude(amount=-FIXINGSUPPORT_DEPTH)

    # Esquisse11 → FixingHoles (cut, through all)
    with BuildSketch(Plane.XY.offset(17.2)):
        with Locations((-44.5, -16)):
            Circle(ESQUISSE11_R)
    extrude(amount=-FIXINGHOLES_DEPTH, mode=Mode.SUBTRACT)

    # Esquisse12 → RackHole (cut, through all)
    with BuildSketch(Plane(origin=(-32.5, 0, 0), x_dir=(0, 0, -1), z_dir=(1, 0, 0))):
        with Locations((0, -15)):
            Rectangle(ESQUISSE12_W, ESQUISSE12_H)
    extrude(amount=-RACKHOLE_DEPTH, mode=Mode.SUBTRACT)


with BuildPart() as part_1:
    add(part.part)

    add(body_2.part)  # Fillet 2 merges body 2
    # Esquisse14 → Fillet 2 (add)
    with BuildSketch(Plane(origin=(0, 7, 0), x_dir=(1, 0, 0), z_dir=(0, 1, 0))):
        with BuildLine():
            Line((-32.5, -5), (-32.5, -10))
            ThreePointArc((-32.5, -10), (-31.035533906, -6.464466094), (-27.5, -5))
            Line((-27.5, -5), (-32.5, -5))
        make_face()
    fillet_2 = extrude(amount=-FILLET_2_DEPTH)

    # FilletSymetry: Fillet 2 across plane
    add(fillet_2.mirror(Plane.XY))

    # Esquisse15 → Reinforcement (cut)
    with BuildSketch(Plane.XY.offset(5)):
        with Locations((-2.5, 0)):
            Rectangle(ESQUISSE15_W, ESQUISSE15_H)
    reinforcement = extrude(amount=-REINFORCEMENT_DEPTH, mode=Mode.SUBTRACT)

    # Symétrie1: Reinforcement across plane
    add(reinforcement.mirror(Plane.XY), mode=Mode.SUBTRACT)

    # Esquisse16 → Enlèv. mat.-Extru.2 (cut, through all)
    with BuildSketch(Plane.XY.offset(4)):
        with Locations((17.5, 0)):
            Circle(ESQUISSE16_R)
        with Locations((7.5, 0)):
            Circle(ESQUISSE16_R)
        with Locations((-2.5, 0)):
            Circle(ESQUISSE16_R)
        with Locations((-12.5, 0)):
            Circle(ESQUISSE16_R)
        with Locations((-22.5, 0)):
            Circle(ESQUISSE16_R)
    extrude(amount=-ENL_V_MAT_EXTRU_2_DEPTH, mode=Mode.SUBTRACT)


solid = part_1.part
